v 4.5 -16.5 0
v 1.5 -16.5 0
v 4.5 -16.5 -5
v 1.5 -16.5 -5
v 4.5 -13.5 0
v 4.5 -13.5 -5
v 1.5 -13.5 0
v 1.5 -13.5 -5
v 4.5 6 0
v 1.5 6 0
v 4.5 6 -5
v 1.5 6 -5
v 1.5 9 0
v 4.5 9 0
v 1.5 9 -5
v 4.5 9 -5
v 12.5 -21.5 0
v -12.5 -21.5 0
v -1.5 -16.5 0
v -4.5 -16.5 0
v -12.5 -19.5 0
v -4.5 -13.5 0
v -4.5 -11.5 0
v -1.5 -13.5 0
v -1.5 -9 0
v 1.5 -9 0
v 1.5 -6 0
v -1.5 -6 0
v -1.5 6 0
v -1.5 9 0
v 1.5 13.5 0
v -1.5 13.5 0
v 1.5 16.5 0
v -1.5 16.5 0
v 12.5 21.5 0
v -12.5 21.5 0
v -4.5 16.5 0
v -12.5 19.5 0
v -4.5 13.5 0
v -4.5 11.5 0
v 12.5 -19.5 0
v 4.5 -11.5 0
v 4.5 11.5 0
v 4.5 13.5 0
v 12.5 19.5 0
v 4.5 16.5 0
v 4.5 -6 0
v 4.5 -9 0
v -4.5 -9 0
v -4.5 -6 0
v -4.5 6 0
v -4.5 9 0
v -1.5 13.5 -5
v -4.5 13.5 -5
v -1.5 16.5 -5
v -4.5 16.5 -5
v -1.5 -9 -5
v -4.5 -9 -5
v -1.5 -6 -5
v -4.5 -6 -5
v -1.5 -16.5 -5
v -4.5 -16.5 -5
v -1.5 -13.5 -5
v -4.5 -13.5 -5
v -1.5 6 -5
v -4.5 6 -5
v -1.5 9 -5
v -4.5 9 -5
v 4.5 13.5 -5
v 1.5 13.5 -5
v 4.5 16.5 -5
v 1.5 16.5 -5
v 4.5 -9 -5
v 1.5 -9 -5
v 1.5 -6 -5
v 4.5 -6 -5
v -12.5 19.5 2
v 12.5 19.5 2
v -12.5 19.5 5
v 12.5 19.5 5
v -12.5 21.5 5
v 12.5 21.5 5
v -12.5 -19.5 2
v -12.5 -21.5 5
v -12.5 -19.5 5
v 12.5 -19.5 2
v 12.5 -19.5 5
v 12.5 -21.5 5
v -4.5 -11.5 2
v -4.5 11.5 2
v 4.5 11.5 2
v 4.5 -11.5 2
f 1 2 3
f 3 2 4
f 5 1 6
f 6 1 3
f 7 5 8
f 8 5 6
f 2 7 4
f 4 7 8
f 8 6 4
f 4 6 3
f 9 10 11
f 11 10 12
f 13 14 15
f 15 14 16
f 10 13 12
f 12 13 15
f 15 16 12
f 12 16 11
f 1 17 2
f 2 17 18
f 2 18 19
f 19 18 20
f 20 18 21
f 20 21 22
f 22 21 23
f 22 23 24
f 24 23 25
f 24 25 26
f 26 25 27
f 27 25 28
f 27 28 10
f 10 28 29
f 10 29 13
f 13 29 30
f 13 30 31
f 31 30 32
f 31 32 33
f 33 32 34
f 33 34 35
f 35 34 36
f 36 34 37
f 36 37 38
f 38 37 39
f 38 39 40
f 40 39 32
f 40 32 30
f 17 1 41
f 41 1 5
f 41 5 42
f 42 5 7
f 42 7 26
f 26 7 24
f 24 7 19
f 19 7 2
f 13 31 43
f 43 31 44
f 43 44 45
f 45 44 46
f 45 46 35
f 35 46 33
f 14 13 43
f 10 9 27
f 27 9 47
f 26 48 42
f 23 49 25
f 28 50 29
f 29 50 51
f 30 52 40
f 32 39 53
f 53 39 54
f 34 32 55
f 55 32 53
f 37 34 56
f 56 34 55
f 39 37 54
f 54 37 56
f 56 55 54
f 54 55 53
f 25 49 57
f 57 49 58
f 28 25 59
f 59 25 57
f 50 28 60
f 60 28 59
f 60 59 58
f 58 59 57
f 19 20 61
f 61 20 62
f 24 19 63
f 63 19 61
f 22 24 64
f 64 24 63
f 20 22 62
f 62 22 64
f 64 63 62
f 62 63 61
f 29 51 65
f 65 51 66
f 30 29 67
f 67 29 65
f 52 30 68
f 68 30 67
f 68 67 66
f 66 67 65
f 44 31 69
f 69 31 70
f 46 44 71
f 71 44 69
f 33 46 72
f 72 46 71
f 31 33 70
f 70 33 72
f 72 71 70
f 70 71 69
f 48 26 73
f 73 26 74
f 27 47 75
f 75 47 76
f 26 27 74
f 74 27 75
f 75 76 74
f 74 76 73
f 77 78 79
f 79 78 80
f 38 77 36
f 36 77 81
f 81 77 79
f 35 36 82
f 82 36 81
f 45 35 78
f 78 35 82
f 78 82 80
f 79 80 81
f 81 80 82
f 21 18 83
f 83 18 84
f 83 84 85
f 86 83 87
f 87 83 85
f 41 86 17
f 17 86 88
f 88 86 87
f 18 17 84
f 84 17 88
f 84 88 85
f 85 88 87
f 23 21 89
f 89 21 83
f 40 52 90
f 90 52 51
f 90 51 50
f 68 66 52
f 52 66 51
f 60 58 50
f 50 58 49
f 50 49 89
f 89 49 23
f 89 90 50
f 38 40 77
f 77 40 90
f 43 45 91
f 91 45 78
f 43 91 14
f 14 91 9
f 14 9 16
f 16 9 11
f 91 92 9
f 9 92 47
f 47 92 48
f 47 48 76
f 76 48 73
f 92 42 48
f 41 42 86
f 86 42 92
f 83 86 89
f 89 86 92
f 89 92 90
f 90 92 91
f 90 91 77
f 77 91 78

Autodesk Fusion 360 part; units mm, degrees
sketch "Sketch1" plane through (0, 0, 0) normal (0, 0, 1) x (1, 0, 0) in component "Component'"
  line L0 (-12.5, 21.5) -> (12.5, 21.5)
  line L1 (12.5, 21.5) -> (12.5, 19.5)
  line L2 (12.5, 19.5) -> (-12.5, 19.5)
  line L3 (-12.5, 19.5) -> (-12.5, 21.5)
  line L4 (-12.5, -19.5) -> (12.5, -19.5)
  line L5 (12.5, -19.5) -> (12.5, -21.5)
  line L6 (12.5, -21.5) -> (-12.5, -21.5)
  line L7 (-12.5, -21.5) -> (-12.5, -19.5)
  line L8 (0, -19.5) -> (0, 19.5) construction
  line L9 (-4.5, 9) -> (-1.5, 9)
  line L10 (-1.5, 9) -> (-1.5, 6)
  line L11 (-1.5, 6) -> (-4.5, 6)
  line L12 (-4.5, 6) -> (-4.5, 9)
  line L13 (-1.5, 16.5) -> (-1.5, 13.5)
  line L14 (-1.5, 13.5) -> (-4.5, 13.5)
  line L15 (-4.5, 13.5) -> (-4.5, 16.5)
  line L16 (-4.5, 16.5) -> (-1.5, 16.5)
  line L17 (-4.5, -16.5) -> (-4.5, -13.5)
  line L18 (-1.5, -6) -> (-1.5, -9)
  line L19 (-4.5, -6) -> (-1.5, -6)
  line L20 (-4.5, -13.5) -> (-1.5, -13.5)
  line L21 (-4.5, -9) -> (-4.5, -6)
  line L22 (-1.5, -16.5) -> (-4.5, -16.5)
  line L23 (-1.5, -9) -> (-4.5, -9)
  line L24 (-1.5, -13.5) -> (-1.5, -16.5)
  line L25 (-20, 0) -> (15, 0) construction
  line L26 (4.5, 9) -> (4.5, 6)
  line L27 (4.5, 16.5) -> (4.5, 13.5)
  line L28 (1.5, 13.5) -> (1.5, 16.5)
  line L29 (4.5, -16.5) -> (1.5, -16.5)
  line L30 (4.5, -13.5) -> (4.5, -16.5)
  line L31 (1.5, -6) -> (4.5, -6)
  line L32 (4.5, -6) -> (4.5, -9)
  line L33 (1.5, -9) -> (1.5, -6)
  line L34 (1.5, -16.5) -> (1.5, -13.5)
  line L35 (1.5, 6) -> (1.5, 9)
  line L36 (1.5, 9) -> (4.5, 9)
  line L37 (4.5, 6) -> (1.5, 6)
  line L38 (4.5, -9) -> (1.5, -9)
  line L39 (1.5, 16.5) -> (4.5, 16.5)
  line L40 (1.5, -13.5) -> (4.5, -13.5)
  line L41 (4.5, 13.5) -> (1.5, 13.5)
  line L42 (4.5, 19.5) -> (4.5, -19.5)
  line L43 (-4.5, 19.5) -> (-4.5, -19.5)
  line L44 (12.5, 19.5) -> (4.5, 11.5)
  line L45 (12.5, 19.5) -> (24.453, 19.5) construction
  line L46 (-12.5, 19.5) -> (-4.5, 11.5)
  line L47 (-12.5, -19.5) -> (-4.5, -11.5)
  line L48 (12.5, -19.5) -> (4.5, -11.5)
  dimension "d1" = 39
  dimension "d2" = 25
  dimension "d3" = 2
  dimension "d6" = 3
  dimension "d7" = 3
  dimension "d8" = 1.5
  dimension "d9" = 7.5
  dimension "d10" = 3
  dimension "d11" = 3
  dimension "d12" = 7.5
  dimension "d13" = 12
  dimension "d14" = 3
  dimension "d15" = 3
  dimension "d16" = 7.5
  dimension "d17" = 3
  dimension "d18" = 3
  dimension "d19" = 7.5
  dimension "d20" = 12
  dimension "d21" = 135
extrude "Extrude1" add sketch "Sketch1" along normal blind 2 contours L2 L15 L43 L46 | L2 L27 L42 L44 | L2 L4 L9 L10 L11 L13 L14 L16 L18 L19 L20 L22 L23 L24 L28 L29 L31 L33 L34 L35 L36 L37 L38 L39 L40 L41 L42 L43 | L13 L14 L15 L16 L43 | L9 L10 L11 L12 L43 | L27 L28 L39 L41 L42 | L26 L35 L36 L37 L42 | L18 L19 L21 L23 L43 | L31 L32 L33 L38 L42 | L4 L17 L43 L47 | L4 L30 L42 L48 | L17 L20 L22 L24 L43 | L29 L30 L34 L40 L42 in component "Component'"
extrude "Extrude2" add sketch "Sketch1" along normal blind 5 contours L0 L1 L2 L3 | L4 L5 L6 L7 in component "Component'"
extrude "Extrude3" add sketch "Sketch1" against normal blind 5 contours L13 L14 L15 L16 L43 | L9 L10 L11 L12 L43 | L27 L28 L39 L41 L42 | L26 L35 L36 L37 L42 | L18 L19 L21 L23 L43 | L31 L32 L33 L38 L42 | L17 L20 L22 L24 L43 | L29 L30 L34 L40 L42 in component "Component'"
component "Component'" placed x (1, 0, 0) y (0, 1, 0) z (0, 0, 1) at (0, 0, 0)
